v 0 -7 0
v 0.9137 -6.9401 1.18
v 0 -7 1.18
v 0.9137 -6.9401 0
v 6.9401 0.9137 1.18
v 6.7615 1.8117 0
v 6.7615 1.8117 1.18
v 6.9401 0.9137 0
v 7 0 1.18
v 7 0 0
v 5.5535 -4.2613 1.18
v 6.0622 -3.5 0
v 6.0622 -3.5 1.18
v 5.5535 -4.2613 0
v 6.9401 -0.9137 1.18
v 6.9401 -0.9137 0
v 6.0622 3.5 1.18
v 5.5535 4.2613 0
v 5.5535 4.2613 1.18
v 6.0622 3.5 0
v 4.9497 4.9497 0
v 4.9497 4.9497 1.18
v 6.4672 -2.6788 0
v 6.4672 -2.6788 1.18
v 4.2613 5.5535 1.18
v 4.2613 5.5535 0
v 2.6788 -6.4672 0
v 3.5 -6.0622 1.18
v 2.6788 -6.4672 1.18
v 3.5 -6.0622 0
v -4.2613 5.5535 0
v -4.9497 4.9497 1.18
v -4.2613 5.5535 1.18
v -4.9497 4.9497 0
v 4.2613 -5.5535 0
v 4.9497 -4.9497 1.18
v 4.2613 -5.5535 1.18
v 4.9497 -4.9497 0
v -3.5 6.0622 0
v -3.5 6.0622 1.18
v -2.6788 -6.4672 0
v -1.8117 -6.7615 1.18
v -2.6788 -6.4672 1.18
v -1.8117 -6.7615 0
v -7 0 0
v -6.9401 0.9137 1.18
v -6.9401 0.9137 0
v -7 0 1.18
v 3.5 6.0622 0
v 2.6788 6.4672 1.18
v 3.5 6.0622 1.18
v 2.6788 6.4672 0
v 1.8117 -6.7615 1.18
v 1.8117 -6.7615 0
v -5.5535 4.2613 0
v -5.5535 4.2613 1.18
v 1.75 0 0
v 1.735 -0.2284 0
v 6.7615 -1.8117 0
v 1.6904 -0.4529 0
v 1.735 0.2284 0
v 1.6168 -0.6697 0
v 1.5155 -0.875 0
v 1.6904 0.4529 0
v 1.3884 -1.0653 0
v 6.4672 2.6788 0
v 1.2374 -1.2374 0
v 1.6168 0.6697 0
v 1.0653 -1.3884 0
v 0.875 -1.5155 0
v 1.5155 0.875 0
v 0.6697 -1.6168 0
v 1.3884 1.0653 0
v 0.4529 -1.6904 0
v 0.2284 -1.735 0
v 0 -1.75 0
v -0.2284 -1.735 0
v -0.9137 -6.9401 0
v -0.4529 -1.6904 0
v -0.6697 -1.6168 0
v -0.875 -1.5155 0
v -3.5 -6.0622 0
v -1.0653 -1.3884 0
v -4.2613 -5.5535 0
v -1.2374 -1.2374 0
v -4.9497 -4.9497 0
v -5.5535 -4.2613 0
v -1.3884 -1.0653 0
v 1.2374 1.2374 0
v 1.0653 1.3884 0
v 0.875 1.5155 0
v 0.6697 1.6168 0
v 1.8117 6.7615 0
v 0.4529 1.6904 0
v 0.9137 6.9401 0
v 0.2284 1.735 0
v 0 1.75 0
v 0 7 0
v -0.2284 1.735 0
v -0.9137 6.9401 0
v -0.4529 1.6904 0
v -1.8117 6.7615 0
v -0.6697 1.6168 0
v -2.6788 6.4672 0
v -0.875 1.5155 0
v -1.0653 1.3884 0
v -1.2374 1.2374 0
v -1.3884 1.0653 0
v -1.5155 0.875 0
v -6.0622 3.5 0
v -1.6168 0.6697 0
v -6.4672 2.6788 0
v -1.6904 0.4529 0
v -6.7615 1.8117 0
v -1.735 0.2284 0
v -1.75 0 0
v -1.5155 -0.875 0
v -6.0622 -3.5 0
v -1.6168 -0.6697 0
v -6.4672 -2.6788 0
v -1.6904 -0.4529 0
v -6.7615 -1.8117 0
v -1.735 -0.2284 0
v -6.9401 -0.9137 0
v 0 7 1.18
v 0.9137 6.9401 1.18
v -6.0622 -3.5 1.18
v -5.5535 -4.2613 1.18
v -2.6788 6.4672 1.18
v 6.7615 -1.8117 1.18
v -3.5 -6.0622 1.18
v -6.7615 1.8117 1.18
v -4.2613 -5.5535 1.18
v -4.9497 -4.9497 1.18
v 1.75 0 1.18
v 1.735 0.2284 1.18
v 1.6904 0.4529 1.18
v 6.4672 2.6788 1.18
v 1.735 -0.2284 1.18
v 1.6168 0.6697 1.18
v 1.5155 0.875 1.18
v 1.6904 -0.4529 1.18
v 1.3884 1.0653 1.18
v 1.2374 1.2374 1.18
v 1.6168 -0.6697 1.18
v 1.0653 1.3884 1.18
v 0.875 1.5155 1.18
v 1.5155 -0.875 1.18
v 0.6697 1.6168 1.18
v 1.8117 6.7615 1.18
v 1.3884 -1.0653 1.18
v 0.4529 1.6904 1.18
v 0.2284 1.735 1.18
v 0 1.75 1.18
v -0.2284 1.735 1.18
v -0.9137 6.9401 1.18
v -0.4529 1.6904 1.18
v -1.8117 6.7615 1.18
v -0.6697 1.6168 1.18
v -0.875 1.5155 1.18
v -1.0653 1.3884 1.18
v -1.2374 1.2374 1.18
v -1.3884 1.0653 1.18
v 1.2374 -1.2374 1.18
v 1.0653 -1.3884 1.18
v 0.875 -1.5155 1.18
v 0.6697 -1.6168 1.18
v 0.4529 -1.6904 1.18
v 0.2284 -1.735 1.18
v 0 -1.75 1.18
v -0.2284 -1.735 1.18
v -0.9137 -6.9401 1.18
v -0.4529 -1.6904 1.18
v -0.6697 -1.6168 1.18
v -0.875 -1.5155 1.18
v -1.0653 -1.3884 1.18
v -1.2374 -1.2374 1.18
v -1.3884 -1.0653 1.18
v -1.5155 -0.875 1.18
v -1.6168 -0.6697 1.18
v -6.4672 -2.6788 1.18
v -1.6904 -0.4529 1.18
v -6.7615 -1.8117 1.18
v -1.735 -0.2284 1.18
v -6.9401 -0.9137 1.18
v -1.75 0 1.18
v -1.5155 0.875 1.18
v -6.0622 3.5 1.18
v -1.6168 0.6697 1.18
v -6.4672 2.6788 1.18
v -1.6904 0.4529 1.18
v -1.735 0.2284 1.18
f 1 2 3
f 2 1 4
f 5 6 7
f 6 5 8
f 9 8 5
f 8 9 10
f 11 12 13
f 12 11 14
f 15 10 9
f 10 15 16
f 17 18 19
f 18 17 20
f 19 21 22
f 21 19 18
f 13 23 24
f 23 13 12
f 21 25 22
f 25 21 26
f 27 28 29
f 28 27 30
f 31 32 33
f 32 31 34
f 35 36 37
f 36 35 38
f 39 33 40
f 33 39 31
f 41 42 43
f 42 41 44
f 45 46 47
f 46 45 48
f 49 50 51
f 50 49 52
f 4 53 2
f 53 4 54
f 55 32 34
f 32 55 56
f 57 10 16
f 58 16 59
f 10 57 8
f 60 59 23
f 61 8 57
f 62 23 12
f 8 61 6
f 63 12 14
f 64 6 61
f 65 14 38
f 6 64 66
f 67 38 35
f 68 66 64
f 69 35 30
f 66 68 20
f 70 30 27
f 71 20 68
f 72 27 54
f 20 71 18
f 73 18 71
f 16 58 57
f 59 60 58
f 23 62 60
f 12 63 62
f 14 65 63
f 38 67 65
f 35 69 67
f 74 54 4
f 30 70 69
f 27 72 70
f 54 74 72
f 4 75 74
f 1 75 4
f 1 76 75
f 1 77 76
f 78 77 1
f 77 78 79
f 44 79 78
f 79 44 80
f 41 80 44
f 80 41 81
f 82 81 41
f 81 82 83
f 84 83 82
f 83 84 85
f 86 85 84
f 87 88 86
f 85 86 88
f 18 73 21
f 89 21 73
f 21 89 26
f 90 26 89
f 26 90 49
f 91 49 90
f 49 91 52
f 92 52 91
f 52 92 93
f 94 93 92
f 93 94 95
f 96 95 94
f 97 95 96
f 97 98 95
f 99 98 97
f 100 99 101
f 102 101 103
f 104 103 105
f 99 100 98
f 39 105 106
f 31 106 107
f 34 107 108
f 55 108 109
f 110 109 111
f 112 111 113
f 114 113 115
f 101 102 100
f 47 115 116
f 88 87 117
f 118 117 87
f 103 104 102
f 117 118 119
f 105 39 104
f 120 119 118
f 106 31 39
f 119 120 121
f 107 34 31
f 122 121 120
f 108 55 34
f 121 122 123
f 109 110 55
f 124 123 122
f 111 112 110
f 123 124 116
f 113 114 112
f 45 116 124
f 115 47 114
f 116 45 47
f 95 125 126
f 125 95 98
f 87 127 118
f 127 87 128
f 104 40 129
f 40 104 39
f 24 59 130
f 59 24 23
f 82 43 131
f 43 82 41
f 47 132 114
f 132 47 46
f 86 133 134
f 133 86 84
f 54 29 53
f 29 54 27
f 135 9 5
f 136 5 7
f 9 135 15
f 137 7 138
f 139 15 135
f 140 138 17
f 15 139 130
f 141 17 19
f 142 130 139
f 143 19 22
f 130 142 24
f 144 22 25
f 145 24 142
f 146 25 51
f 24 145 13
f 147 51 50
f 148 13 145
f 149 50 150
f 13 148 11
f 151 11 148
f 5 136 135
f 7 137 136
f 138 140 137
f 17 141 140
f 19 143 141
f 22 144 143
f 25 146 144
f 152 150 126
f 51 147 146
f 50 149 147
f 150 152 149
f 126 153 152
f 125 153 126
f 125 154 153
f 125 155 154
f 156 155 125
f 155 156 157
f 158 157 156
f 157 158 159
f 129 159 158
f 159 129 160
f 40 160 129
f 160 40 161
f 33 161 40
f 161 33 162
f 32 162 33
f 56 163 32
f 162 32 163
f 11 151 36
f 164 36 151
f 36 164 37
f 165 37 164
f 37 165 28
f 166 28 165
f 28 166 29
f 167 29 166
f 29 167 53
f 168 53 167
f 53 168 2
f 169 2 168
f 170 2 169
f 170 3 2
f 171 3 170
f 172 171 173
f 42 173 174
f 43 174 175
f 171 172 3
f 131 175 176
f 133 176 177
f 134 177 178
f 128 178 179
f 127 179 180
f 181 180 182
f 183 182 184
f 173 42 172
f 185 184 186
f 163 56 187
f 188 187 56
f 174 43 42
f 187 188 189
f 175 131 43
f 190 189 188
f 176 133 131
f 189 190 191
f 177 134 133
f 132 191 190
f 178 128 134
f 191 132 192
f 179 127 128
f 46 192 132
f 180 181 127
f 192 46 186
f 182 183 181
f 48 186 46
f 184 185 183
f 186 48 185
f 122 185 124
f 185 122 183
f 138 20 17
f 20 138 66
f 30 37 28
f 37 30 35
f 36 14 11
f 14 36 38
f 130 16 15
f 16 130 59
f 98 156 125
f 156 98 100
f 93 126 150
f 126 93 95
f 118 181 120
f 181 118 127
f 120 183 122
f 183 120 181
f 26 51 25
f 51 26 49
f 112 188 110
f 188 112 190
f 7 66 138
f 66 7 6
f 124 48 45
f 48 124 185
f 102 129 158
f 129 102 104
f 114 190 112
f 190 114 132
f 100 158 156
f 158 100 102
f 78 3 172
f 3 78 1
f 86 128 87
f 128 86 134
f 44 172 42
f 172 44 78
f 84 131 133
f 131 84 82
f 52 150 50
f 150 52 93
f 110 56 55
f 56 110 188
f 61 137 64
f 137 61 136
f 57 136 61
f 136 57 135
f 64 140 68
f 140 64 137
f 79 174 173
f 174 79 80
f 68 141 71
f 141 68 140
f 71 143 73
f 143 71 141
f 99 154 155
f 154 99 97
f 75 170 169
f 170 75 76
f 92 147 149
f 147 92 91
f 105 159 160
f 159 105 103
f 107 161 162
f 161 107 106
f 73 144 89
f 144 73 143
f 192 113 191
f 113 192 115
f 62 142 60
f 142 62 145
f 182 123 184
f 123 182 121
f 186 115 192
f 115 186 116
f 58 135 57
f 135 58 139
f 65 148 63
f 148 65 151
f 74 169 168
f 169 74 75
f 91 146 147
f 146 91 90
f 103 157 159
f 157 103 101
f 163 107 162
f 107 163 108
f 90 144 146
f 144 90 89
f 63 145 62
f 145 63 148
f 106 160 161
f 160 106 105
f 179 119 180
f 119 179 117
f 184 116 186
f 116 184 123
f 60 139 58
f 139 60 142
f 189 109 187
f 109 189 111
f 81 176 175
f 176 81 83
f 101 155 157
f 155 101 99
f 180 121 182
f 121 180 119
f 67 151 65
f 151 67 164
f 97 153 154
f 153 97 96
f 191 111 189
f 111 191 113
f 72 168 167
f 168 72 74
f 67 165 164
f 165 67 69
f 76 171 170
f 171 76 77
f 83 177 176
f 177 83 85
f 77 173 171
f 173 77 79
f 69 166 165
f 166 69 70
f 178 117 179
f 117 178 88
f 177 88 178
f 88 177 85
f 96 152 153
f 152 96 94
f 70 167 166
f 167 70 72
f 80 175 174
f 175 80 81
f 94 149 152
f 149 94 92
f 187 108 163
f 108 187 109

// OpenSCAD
// file: parameters.scad
// =============================================================================
// Gen-AG Vernier flux-claw hyper-nano — WOUND-AWARE (HARD GATE)
// Improve Gen-AG: tighter m2m 5.11, more copper (165 t), run_clear 0.55
// =============================================================================

wire_awg            = 26;
wire_od             = 0.45;
turns               = 165;      // +10 vs Gen-AG 155
fill                = 0.70;
layers_per_face     = 2;
wind_build_axial    = layers_per_face * wire_od * fill;   // 0.63
wind_build_radial   = 3 * wire_od * fill;                 // 0.945

coil_id_r           = 19.5;
coil_od_r           = 63.0;
span_deg            = 25.0;     // 12 stations; vernier vs 16-pole equiv
former_web          = 1.55;
flange_t            = 0.60;
wall                = 1.2;
slot_w              = 2.4;
mount_hole          = 3.5;
tab_len             = 7.0;

former_bare_h       = former_web + 2 * flange_t;            // 2.75
coil_envelope_h     = former_bare_h + 2 * wind_build_axial; // 4.01

run_clear           = 0.55;
gap_spacer_h        = run_clear + wind_build_axial;         // 1.18
m2m                 = coil_envelope_h + 2 * run_clear;      // 5.11 (beats Gen-AG 5.46)

coil_stations       = 12;
bay_r_in            = coil_id_r - 2.0 - wind_build_radial;
bay_r_out           = coil_od_r + 2.0 + wind_build_radial;
bay_span            = span_deg + 4.0;
bay_offset          = 2.0;
stator_thick        = former_bare_h;
stator_od           = 156.0;
shaft_clear_stator  = 36.0;
coil_mount_r        = 28.0;

// Dual rotors: 8+8 Ø20 vernier poles + 24+24 Ø5 flux claws / edge assists
large_pocket_d      = 20.3;
small_pocket_d      = 5.3;
pocket_h            = 5.2;
large_n             = 8;
R_large             = 50.0;
R_small_inner       = 36.0;     // claw inner
R_small_mid         = 50.0;
R_small_outer       = 64.0;
carrier_od          = 152.0;
carrier_thick       = 7.5;
hub_h               = 10.0;
hub_od              = 30.0;
rotor_b_offset_deg  = 22.5;     // vernier offset

shaft_bore          = 8.35;
bearing_d           = 21.85;
bearing_h           = 7.2;
m3_clear            = 3.5;
bolt_r_inner        = 36.0;
bolt_n_inner        = 6;
flange_bolt_r       = 72.0;
flange_bolt_n       = 6;
brace_r             = 68.0;
brace_d             = 4.3;
brace_n             = 4;

spacer_pad_od       = 14.0;
spacer_pad_id       = m3_clear;
endbell_od          = 156.0;
endbell_thick       = 8.0;
endbell_shaft_clear = 10.0;

$fn = 64;
// main file
// Gen-AG gap spacer — h = run_clear + wind_build_axial; print ×12
include <parameters.scad>;
$fn = 48;
difference() {
    cylinder(d=spacer_pad_od, h=gap_spacer_h);
    translate([0, 0, -0.1]) cylinder(d=spacer_pad_id, h=gap_spacer_h + 0.2);
}
